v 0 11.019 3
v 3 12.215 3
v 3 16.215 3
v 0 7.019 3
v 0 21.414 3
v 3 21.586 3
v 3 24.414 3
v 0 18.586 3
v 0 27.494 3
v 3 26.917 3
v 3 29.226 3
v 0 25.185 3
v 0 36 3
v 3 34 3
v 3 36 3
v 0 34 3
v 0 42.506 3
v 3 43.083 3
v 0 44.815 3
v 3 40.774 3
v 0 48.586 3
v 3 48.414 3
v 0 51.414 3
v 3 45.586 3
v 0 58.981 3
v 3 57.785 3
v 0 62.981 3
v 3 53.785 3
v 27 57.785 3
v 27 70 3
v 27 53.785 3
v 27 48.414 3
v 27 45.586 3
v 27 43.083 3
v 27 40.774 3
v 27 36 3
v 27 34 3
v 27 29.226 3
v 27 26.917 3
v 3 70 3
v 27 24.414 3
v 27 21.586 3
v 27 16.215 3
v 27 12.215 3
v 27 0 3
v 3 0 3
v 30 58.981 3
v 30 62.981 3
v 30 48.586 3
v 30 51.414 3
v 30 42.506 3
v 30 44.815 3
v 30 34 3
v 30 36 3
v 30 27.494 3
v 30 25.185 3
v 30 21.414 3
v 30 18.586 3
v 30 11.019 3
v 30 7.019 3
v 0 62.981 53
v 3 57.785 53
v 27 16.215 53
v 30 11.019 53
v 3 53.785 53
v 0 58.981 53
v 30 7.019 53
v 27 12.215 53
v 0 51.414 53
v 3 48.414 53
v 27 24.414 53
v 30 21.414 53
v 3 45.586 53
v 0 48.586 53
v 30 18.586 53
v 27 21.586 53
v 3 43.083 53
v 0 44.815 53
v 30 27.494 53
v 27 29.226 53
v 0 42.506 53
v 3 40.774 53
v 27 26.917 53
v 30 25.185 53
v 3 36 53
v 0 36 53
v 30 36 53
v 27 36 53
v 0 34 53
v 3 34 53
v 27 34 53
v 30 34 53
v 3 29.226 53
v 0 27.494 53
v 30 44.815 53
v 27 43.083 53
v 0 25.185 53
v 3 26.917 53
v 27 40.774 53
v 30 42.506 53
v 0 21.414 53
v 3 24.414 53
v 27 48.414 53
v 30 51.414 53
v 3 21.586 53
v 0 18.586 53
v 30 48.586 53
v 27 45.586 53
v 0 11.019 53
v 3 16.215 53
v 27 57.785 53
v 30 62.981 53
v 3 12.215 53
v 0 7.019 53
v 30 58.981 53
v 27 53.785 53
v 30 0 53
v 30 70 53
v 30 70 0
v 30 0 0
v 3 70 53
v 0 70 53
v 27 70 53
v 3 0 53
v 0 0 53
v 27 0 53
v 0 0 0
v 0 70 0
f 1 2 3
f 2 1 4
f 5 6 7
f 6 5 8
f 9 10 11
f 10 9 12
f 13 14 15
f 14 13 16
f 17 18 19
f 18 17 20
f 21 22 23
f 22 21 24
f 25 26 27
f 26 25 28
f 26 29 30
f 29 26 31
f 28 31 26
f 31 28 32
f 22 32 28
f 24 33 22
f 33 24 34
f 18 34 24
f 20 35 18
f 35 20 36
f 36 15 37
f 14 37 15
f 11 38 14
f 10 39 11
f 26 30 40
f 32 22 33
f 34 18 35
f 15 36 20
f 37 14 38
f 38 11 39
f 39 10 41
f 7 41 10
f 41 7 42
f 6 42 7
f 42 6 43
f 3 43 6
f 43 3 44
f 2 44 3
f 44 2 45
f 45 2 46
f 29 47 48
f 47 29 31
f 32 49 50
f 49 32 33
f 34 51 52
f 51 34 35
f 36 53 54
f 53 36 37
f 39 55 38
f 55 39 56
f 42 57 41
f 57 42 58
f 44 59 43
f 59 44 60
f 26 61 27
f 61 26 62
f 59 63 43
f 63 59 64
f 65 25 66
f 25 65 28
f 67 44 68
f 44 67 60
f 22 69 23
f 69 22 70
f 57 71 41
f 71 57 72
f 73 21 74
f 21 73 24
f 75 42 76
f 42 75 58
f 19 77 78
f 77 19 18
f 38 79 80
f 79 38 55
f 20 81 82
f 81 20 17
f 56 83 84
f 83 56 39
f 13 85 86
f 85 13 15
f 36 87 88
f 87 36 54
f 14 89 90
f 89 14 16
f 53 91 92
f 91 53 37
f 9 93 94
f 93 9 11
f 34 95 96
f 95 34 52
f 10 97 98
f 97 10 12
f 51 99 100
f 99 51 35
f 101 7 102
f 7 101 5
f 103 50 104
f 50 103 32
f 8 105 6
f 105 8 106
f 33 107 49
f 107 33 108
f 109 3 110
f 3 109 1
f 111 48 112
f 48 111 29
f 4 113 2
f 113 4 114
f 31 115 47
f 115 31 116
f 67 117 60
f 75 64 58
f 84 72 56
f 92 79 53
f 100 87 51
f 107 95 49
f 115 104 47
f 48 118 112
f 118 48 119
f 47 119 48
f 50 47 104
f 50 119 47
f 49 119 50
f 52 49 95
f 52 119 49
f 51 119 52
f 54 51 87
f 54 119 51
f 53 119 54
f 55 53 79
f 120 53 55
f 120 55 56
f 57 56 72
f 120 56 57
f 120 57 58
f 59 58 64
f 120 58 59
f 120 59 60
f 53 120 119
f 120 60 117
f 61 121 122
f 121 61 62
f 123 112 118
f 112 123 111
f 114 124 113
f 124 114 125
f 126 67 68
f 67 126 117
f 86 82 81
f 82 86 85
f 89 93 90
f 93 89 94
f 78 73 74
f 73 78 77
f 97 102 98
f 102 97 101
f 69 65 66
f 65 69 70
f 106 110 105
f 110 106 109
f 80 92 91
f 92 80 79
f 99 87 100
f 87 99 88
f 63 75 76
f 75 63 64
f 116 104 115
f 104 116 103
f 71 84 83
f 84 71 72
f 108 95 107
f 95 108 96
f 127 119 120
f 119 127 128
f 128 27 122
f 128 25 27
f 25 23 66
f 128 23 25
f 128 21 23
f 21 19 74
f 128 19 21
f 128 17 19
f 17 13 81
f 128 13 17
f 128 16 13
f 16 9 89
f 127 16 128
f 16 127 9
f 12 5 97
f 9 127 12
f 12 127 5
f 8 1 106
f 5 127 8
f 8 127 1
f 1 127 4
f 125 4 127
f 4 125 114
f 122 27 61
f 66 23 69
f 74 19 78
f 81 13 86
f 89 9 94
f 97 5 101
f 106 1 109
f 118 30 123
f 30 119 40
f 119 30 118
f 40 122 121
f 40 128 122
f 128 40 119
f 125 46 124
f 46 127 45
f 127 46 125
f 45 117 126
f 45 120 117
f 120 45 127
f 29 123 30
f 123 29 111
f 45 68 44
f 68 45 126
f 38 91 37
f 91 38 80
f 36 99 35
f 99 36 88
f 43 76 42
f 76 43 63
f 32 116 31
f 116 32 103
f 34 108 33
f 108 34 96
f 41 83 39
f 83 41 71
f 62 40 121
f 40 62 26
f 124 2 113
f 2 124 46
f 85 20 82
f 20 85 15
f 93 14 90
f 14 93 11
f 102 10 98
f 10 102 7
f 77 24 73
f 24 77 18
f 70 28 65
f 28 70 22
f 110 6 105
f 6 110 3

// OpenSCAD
module mitre(inner_width, inner_length, inner_height, wall_thickness, gap_width, angles) {
    difference() {
        cube([inner_width+(2*wall_thickness), inner_length, inner_height+wall_thickness]);
        
        translate([wall_thickness, -wall_thickness, wall_thickness])
            cube([inner_width, inner_length+(2*wall_thickness), inner_height+wall_thickness]);
        
        for (angle = angles) {
            excess_margin = 1;
            translate([wall_thickness + inner_width/2, inner_length/2, wall_thickness + (excess_margin/2) + inner_height/2])
                rotate([0, 0, angle])
                    cube([inner_width*3, gap_width, inner_height+excess_margin], center = true);
        }
    }
}

mitre(inner_width=24, inner_length=70, inner_height=50, wall_thickness=3, gap_width=2, angles=[-60, -45, -30, 0, 30, 45, 60]);
